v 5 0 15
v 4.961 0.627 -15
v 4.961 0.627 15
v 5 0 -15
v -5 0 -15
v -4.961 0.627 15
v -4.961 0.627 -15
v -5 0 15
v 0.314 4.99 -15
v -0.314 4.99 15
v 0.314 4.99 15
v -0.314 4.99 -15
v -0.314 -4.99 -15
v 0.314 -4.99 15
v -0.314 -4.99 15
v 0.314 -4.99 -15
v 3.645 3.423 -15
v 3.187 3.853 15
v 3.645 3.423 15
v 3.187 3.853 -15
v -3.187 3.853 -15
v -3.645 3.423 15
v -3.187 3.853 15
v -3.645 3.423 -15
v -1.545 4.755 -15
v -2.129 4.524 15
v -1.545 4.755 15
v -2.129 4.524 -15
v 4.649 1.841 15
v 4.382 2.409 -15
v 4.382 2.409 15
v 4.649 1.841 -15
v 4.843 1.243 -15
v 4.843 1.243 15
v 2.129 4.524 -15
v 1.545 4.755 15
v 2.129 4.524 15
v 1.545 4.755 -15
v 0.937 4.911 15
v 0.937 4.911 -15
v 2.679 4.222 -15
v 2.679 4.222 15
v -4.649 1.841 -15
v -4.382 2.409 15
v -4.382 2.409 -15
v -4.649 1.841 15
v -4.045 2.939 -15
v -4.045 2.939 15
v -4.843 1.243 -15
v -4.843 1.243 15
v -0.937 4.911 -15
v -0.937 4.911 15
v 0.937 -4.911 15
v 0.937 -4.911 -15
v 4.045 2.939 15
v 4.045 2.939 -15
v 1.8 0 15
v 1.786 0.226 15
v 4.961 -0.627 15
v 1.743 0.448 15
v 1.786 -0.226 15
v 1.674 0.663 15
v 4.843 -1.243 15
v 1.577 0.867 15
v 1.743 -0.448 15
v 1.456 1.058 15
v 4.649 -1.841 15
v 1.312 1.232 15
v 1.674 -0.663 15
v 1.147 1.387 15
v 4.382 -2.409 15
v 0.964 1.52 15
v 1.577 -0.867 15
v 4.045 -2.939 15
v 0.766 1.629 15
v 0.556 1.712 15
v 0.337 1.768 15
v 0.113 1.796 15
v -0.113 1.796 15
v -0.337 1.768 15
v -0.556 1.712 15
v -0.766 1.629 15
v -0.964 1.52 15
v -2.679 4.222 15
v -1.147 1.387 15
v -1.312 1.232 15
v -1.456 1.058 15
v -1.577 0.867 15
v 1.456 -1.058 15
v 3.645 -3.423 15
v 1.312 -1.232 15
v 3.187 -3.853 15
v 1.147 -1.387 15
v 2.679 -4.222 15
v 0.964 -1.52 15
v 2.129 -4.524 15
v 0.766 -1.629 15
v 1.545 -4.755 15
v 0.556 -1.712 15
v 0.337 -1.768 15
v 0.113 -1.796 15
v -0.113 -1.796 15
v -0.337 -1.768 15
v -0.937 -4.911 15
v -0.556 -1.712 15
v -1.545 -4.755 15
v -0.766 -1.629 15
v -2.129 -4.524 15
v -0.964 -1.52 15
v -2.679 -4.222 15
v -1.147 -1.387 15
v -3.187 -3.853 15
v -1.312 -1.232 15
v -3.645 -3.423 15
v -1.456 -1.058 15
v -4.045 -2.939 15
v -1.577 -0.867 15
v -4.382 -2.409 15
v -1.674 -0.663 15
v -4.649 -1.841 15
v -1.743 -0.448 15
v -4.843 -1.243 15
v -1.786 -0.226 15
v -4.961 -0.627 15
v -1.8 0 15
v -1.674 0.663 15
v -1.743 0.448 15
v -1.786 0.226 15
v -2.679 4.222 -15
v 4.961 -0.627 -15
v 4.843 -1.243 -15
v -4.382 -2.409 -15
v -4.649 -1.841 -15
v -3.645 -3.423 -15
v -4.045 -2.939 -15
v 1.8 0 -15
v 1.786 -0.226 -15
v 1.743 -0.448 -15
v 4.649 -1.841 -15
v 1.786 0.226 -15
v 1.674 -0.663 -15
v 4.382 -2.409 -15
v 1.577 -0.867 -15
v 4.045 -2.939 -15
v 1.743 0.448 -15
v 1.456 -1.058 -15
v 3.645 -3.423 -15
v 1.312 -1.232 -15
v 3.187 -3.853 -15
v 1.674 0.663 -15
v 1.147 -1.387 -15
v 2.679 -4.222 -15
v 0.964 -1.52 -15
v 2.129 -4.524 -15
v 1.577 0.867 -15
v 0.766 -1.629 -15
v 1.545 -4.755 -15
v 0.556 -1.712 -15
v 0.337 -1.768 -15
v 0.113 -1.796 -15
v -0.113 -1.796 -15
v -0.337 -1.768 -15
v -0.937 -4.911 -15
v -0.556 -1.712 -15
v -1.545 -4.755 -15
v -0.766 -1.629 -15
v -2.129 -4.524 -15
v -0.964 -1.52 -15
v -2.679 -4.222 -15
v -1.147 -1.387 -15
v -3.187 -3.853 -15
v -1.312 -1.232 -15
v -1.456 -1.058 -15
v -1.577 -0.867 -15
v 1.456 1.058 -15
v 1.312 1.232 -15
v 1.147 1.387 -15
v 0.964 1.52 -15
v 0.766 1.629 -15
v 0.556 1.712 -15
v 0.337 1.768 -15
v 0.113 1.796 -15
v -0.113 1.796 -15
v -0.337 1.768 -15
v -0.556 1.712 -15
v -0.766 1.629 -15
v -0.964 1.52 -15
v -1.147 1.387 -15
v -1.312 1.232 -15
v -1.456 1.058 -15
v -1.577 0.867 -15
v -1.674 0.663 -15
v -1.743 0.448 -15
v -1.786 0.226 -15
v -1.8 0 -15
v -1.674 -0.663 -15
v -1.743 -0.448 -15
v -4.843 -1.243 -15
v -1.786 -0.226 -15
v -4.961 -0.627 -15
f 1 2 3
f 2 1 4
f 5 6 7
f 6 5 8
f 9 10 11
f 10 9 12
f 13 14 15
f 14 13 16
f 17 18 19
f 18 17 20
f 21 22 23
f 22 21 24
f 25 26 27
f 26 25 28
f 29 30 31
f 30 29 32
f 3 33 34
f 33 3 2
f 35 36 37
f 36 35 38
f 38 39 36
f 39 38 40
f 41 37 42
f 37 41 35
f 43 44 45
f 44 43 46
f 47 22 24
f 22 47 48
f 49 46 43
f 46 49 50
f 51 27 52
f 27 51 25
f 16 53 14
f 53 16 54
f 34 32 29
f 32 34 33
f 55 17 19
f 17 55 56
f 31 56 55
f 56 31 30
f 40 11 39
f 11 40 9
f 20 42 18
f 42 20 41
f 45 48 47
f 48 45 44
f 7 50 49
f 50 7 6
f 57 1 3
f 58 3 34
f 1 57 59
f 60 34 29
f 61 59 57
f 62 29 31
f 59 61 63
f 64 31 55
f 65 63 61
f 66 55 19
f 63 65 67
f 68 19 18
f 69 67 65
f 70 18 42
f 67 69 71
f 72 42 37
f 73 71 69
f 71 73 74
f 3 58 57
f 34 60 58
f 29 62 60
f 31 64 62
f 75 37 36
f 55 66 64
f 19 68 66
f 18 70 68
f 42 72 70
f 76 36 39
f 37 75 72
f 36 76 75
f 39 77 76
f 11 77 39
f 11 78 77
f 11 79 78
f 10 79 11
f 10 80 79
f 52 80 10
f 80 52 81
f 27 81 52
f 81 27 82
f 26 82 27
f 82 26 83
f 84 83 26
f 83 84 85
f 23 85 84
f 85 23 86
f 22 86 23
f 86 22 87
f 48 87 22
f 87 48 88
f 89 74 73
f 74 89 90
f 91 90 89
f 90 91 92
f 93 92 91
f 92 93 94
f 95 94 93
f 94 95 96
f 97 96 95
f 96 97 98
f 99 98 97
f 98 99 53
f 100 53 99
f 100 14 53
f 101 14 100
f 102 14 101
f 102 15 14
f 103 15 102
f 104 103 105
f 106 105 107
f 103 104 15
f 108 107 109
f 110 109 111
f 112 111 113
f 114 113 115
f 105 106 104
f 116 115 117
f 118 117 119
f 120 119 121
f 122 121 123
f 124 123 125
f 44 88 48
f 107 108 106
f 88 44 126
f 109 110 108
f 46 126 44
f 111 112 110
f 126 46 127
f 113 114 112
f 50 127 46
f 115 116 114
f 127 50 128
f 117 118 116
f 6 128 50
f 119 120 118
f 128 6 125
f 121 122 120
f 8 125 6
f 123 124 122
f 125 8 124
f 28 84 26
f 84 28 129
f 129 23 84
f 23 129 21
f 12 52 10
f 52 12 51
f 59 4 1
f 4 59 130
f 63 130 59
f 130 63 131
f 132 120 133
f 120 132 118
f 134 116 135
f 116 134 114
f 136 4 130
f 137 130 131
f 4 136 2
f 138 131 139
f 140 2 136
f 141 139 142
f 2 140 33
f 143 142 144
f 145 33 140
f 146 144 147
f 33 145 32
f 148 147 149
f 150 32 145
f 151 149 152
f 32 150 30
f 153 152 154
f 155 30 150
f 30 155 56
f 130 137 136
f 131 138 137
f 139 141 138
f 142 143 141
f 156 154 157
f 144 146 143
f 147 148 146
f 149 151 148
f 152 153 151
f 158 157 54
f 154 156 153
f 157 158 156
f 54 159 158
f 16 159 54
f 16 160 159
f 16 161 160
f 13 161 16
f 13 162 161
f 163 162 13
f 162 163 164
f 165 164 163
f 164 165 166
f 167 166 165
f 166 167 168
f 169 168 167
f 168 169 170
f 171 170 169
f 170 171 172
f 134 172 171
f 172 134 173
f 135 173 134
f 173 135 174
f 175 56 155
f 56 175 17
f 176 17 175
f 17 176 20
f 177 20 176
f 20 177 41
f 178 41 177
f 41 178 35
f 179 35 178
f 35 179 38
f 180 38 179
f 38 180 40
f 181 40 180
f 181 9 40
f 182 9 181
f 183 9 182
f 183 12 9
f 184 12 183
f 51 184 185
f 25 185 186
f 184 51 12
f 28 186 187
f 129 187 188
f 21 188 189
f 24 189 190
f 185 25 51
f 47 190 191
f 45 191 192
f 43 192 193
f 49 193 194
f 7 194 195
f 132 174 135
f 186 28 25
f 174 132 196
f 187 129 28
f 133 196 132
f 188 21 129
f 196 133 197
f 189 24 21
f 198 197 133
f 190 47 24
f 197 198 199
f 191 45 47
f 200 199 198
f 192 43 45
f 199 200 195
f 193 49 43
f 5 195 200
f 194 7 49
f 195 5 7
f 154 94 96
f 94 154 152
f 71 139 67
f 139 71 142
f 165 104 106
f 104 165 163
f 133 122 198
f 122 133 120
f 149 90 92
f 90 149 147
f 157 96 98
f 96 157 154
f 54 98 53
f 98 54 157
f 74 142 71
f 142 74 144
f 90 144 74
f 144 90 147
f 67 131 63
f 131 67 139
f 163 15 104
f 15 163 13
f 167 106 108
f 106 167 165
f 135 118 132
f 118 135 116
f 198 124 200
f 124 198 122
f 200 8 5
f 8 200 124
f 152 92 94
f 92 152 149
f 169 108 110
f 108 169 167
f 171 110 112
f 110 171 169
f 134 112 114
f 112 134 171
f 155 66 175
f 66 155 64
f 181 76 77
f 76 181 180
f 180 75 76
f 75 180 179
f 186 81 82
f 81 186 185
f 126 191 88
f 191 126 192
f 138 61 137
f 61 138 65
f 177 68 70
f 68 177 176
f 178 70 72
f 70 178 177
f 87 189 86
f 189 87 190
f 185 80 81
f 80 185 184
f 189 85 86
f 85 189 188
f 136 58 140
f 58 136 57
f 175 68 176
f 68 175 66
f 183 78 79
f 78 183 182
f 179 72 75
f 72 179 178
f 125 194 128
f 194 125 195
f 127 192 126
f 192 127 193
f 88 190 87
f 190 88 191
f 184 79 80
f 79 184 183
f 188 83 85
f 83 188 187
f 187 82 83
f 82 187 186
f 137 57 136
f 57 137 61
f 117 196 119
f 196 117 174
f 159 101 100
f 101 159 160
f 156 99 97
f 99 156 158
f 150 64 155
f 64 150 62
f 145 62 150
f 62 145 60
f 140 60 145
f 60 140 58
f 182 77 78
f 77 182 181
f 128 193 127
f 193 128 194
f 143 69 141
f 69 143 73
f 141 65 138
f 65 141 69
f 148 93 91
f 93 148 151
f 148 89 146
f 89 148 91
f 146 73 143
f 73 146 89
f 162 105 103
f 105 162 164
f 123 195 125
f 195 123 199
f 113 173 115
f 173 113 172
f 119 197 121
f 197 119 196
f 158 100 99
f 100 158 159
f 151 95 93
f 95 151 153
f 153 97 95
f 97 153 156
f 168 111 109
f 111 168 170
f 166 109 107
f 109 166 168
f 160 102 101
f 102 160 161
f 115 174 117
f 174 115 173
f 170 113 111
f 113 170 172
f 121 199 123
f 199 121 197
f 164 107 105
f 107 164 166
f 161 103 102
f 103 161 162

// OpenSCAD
$fn = 50;


difference() {
	union() {
		translate(v = [0, 0, -15.0000000000]) {
			cylinder(h = 30, r = 5.0000000000);
		}
	}
	union() {
		translate(v = [0, 0, -100.0000000000]) {
			cylinder(h = 200, r = 1.8000000000);
		}
	}
}
